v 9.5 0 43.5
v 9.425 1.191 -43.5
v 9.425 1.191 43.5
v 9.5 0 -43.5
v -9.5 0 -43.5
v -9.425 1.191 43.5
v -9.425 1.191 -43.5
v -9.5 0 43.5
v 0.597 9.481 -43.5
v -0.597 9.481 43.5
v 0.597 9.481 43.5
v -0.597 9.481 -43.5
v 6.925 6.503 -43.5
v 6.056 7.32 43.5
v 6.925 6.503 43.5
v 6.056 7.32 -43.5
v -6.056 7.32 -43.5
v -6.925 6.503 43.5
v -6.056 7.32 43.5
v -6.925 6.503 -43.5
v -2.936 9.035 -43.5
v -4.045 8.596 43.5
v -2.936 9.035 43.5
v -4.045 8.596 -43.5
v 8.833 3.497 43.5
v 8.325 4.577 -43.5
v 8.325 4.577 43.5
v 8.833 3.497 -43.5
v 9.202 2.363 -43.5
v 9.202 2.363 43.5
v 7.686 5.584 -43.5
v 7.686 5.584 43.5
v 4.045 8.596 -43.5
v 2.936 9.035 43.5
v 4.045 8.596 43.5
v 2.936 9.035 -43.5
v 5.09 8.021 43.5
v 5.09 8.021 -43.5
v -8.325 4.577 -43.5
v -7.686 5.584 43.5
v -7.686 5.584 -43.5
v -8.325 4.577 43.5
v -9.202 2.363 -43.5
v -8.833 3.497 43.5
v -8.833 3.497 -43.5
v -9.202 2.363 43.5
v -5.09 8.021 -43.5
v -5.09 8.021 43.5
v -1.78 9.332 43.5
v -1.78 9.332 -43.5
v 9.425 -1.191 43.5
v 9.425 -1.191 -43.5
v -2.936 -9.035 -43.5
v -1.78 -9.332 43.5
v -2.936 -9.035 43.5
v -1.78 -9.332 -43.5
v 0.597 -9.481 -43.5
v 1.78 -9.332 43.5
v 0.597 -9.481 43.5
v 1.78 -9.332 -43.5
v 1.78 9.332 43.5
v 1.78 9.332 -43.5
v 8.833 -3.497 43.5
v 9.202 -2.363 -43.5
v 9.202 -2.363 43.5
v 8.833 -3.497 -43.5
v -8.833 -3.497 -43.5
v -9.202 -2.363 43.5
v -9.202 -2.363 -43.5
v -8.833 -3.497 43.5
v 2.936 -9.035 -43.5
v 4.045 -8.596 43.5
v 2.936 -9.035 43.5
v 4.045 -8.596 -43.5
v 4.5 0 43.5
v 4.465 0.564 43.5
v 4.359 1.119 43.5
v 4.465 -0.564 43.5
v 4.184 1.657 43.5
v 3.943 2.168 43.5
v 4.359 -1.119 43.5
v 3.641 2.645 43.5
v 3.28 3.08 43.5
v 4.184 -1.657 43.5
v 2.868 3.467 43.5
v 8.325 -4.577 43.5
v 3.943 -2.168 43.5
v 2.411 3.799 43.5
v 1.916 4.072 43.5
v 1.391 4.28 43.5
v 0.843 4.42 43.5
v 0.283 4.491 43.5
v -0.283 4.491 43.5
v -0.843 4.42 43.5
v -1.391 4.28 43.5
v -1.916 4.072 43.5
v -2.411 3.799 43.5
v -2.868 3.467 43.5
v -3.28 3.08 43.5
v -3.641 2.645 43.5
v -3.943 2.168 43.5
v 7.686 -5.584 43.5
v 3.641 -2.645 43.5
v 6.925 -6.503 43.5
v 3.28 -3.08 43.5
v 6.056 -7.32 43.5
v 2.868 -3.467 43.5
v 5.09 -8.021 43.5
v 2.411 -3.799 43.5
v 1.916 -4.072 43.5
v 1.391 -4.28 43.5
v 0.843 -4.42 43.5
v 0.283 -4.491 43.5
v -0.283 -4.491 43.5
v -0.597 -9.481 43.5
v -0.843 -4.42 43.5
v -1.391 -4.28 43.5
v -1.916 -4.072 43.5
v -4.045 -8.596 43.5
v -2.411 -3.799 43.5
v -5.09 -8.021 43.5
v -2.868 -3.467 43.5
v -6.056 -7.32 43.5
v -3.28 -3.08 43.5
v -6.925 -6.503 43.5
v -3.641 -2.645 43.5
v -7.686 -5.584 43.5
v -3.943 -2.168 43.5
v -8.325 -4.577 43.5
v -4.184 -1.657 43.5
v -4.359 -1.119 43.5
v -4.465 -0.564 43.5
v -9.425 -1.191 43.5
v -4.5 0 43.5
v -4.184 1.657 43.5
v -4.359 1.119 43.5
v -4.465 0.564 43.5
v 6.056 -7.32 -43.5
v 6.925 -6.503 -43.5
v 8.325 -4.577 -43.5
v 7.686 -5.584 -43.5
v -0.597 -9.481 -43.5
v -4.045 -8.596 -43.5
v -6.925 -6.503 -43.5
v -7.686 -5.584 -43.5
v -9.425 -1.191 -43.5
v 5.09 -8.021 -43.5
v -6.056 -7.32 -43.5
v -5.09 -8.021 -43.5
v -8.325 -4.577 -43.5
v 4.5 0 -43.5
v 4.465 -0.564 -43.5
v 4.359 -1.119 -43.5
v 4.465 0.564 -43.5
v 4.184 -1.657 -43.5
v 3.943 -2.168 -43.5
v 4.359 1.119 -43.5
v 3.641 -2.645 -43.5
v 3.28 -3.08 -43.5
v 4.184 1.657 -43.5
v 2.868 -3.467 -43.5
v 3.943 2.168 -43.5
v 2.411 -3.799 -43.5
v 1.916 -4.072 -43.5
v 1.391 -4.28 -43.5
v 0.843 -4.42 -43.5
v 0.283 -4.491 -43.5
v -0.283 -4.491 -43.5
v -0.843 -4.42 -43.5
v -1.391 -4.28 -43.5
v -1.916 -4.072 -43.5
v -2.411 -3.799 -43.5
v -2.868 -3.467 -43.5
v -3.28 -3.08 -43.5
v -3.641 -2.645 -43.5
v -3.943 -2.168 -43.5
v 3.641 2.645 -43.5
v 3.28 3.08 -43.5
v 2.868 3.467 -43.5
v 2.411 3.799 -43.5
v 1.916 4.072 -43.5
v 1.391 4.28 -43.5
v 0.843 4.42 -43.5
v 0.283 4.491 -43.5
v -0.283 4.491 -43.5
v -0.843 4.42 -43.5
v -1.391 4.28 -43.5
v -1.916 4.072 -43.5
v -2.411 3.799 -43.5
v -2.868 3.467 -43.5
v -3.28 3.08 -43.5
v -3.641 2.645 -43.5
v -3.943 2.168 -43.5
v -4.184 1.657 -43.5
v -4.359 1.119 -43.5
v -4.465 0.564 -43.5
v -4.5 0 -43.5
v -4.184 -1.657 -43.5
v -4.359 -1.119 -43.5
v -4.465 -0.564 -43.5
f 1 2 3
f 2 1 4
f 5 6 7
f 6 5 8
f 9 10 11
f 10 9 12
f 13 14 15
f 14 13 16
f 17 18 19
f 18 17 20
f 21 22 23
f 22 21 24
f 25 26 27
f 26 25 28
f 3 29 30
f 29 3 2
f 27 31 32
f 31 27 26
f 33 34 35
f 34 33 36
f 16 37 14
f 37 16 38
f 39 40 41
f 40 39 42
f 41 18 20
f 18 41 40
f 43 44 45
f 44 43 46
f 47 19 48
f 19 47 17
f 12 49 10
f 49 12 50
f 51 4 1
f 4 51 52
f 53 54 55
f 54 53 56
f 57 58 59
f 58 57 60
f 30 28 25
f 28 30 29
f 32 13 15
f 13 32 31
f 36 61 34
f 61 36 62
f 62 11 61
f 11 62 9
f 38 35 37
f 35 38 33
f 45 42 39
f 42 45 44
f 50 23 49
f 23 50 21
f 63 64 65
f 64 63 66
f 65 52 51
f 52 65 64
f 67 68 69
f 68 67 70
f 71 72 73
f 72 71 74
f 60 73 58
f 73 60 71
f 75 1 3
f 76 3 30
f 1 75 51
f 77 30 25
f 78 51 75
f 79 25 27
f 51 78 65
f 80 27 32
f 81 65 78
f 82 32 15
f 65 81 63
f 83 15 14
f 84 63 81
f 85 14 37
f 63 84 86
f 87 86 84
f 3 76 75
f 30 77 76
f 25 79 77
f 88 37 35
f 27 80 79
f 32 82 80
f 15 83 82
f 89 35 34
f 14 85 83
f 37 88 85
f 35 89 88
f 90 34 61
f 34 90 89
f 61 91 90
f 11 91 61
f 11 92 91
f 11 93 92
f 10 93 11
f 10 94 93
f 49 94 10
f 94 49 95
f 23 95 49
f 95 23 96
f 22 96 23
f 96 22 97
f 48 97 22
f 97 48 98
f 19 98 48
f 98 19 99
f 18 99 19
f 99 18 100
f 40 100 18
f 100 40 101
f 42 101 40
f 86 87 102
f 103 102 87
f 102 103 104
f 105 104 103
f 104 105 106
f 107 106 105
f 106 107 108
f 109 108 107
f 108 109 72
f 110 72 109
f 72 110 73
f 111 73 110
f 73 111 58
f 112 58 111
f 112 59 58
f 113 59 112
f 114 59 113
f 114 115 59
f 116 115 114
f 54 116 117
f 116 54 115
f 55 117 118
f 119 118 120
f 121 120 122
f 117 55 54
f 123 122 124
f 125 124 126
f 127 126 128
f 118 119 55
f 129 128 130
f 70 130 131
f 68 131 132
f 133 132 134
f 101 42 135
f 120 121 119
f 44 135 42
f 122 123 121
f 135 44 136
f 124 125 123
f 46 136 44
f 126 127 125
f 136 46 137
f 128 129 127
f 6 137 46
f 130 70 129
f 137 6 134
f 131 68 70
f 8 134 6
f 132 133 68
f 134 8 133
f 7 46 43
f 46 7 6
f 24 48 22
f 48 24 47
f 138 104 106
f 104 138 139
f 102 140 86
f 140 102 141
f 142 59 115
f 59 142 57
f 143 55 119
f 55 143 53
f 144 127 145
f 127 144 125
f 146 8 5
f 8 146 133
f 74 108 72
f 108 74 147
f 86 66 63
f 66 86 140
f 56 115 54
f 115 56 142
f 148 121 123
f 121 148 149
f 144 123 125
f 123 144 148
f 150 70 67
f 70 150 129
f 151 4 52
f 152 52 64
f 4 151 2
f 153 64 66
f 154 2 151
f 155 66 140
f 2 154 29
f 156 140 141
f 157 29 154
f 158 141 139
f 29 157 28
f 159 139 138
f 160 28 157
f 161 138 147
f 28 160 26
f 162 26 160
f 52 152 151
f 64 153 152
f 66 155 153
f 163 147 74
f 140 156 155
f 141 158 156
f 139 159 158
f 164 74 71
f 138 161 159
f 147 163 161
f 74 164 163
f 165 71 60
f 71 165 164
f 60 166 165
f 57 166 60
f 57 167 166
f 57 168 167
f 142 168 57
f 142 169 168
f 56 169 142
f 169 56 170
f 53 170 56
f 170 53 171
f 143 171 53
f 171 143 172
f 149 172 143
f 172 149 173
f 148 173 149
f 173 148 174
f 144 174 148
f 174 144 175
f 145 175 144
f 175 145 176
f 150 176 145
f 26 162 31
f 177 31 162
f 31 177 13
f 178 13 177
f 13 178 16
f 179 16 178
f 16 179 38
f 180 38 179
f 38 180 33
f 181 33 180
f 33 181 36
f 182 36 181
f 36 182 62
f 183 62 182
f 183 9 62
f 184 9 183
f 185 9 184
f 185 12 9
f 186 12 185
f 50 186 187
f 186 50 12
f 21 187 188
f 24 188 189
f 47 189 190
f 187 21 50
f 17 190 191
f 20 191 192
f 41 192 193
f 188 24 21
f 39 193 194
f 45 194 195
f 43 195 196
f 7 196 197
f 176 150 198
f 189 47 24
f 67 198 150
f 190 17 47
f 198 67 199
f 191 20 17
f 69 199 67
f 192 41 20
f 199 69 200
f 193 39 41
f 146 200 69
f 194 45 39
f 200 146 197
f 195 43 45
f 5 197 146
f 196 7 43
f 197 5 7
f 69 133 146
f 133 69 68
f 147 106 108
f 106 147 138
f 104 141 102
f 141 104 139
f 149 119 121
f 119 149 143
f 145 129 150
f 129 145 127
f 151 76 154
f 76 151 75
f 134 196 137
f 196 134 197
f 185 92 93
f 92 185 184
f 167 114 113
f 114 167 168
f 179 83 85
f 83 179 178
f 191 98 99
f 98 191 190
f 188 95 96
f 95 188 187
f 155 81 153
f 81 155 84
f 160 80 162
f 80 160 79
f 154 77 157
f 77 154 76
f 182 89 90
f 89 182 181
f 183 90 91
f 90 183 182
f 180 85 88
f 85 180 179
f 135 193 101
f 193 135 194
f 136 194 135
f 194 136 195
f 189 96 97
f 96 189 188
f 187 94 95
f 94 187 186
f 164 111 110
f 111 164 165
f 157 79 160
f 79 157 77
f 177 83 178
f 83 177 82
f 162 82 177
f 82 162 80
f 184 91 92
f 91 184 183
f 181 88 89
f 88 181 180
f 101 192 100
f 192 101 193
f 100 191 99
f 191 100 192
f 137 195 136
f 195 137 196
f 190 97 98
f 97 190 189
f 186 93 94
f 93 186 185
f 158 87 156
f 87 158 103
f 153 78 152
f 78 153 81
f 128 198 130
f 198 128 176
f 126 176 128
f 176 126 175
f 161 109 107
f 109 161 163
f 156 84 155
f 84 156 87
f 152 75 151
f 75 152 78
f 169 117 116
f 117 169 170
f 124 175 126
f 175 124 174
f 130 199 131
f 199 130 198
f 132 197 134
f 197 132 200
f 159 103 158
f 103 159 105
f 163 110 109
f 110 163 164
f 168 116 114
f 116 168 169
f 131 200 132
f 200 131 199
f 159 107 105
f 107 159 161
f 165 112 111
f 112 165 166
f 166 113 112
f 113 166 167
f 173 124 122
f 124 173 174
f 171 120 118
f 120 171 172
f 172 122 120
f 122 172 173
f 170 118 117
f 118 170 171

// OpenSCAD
$fn = 50;


difference() {
	union() {
		translate(v = [0, 0, -43.5000000000]) {
			cylinder(h = 87, r = 9.5000000000);
		}
	}
	union() {
		translate(v = [0, 0, -100.0000000000]) {
			cylinder(h = 200, r = 4.5000000000);
		}
	}
}
